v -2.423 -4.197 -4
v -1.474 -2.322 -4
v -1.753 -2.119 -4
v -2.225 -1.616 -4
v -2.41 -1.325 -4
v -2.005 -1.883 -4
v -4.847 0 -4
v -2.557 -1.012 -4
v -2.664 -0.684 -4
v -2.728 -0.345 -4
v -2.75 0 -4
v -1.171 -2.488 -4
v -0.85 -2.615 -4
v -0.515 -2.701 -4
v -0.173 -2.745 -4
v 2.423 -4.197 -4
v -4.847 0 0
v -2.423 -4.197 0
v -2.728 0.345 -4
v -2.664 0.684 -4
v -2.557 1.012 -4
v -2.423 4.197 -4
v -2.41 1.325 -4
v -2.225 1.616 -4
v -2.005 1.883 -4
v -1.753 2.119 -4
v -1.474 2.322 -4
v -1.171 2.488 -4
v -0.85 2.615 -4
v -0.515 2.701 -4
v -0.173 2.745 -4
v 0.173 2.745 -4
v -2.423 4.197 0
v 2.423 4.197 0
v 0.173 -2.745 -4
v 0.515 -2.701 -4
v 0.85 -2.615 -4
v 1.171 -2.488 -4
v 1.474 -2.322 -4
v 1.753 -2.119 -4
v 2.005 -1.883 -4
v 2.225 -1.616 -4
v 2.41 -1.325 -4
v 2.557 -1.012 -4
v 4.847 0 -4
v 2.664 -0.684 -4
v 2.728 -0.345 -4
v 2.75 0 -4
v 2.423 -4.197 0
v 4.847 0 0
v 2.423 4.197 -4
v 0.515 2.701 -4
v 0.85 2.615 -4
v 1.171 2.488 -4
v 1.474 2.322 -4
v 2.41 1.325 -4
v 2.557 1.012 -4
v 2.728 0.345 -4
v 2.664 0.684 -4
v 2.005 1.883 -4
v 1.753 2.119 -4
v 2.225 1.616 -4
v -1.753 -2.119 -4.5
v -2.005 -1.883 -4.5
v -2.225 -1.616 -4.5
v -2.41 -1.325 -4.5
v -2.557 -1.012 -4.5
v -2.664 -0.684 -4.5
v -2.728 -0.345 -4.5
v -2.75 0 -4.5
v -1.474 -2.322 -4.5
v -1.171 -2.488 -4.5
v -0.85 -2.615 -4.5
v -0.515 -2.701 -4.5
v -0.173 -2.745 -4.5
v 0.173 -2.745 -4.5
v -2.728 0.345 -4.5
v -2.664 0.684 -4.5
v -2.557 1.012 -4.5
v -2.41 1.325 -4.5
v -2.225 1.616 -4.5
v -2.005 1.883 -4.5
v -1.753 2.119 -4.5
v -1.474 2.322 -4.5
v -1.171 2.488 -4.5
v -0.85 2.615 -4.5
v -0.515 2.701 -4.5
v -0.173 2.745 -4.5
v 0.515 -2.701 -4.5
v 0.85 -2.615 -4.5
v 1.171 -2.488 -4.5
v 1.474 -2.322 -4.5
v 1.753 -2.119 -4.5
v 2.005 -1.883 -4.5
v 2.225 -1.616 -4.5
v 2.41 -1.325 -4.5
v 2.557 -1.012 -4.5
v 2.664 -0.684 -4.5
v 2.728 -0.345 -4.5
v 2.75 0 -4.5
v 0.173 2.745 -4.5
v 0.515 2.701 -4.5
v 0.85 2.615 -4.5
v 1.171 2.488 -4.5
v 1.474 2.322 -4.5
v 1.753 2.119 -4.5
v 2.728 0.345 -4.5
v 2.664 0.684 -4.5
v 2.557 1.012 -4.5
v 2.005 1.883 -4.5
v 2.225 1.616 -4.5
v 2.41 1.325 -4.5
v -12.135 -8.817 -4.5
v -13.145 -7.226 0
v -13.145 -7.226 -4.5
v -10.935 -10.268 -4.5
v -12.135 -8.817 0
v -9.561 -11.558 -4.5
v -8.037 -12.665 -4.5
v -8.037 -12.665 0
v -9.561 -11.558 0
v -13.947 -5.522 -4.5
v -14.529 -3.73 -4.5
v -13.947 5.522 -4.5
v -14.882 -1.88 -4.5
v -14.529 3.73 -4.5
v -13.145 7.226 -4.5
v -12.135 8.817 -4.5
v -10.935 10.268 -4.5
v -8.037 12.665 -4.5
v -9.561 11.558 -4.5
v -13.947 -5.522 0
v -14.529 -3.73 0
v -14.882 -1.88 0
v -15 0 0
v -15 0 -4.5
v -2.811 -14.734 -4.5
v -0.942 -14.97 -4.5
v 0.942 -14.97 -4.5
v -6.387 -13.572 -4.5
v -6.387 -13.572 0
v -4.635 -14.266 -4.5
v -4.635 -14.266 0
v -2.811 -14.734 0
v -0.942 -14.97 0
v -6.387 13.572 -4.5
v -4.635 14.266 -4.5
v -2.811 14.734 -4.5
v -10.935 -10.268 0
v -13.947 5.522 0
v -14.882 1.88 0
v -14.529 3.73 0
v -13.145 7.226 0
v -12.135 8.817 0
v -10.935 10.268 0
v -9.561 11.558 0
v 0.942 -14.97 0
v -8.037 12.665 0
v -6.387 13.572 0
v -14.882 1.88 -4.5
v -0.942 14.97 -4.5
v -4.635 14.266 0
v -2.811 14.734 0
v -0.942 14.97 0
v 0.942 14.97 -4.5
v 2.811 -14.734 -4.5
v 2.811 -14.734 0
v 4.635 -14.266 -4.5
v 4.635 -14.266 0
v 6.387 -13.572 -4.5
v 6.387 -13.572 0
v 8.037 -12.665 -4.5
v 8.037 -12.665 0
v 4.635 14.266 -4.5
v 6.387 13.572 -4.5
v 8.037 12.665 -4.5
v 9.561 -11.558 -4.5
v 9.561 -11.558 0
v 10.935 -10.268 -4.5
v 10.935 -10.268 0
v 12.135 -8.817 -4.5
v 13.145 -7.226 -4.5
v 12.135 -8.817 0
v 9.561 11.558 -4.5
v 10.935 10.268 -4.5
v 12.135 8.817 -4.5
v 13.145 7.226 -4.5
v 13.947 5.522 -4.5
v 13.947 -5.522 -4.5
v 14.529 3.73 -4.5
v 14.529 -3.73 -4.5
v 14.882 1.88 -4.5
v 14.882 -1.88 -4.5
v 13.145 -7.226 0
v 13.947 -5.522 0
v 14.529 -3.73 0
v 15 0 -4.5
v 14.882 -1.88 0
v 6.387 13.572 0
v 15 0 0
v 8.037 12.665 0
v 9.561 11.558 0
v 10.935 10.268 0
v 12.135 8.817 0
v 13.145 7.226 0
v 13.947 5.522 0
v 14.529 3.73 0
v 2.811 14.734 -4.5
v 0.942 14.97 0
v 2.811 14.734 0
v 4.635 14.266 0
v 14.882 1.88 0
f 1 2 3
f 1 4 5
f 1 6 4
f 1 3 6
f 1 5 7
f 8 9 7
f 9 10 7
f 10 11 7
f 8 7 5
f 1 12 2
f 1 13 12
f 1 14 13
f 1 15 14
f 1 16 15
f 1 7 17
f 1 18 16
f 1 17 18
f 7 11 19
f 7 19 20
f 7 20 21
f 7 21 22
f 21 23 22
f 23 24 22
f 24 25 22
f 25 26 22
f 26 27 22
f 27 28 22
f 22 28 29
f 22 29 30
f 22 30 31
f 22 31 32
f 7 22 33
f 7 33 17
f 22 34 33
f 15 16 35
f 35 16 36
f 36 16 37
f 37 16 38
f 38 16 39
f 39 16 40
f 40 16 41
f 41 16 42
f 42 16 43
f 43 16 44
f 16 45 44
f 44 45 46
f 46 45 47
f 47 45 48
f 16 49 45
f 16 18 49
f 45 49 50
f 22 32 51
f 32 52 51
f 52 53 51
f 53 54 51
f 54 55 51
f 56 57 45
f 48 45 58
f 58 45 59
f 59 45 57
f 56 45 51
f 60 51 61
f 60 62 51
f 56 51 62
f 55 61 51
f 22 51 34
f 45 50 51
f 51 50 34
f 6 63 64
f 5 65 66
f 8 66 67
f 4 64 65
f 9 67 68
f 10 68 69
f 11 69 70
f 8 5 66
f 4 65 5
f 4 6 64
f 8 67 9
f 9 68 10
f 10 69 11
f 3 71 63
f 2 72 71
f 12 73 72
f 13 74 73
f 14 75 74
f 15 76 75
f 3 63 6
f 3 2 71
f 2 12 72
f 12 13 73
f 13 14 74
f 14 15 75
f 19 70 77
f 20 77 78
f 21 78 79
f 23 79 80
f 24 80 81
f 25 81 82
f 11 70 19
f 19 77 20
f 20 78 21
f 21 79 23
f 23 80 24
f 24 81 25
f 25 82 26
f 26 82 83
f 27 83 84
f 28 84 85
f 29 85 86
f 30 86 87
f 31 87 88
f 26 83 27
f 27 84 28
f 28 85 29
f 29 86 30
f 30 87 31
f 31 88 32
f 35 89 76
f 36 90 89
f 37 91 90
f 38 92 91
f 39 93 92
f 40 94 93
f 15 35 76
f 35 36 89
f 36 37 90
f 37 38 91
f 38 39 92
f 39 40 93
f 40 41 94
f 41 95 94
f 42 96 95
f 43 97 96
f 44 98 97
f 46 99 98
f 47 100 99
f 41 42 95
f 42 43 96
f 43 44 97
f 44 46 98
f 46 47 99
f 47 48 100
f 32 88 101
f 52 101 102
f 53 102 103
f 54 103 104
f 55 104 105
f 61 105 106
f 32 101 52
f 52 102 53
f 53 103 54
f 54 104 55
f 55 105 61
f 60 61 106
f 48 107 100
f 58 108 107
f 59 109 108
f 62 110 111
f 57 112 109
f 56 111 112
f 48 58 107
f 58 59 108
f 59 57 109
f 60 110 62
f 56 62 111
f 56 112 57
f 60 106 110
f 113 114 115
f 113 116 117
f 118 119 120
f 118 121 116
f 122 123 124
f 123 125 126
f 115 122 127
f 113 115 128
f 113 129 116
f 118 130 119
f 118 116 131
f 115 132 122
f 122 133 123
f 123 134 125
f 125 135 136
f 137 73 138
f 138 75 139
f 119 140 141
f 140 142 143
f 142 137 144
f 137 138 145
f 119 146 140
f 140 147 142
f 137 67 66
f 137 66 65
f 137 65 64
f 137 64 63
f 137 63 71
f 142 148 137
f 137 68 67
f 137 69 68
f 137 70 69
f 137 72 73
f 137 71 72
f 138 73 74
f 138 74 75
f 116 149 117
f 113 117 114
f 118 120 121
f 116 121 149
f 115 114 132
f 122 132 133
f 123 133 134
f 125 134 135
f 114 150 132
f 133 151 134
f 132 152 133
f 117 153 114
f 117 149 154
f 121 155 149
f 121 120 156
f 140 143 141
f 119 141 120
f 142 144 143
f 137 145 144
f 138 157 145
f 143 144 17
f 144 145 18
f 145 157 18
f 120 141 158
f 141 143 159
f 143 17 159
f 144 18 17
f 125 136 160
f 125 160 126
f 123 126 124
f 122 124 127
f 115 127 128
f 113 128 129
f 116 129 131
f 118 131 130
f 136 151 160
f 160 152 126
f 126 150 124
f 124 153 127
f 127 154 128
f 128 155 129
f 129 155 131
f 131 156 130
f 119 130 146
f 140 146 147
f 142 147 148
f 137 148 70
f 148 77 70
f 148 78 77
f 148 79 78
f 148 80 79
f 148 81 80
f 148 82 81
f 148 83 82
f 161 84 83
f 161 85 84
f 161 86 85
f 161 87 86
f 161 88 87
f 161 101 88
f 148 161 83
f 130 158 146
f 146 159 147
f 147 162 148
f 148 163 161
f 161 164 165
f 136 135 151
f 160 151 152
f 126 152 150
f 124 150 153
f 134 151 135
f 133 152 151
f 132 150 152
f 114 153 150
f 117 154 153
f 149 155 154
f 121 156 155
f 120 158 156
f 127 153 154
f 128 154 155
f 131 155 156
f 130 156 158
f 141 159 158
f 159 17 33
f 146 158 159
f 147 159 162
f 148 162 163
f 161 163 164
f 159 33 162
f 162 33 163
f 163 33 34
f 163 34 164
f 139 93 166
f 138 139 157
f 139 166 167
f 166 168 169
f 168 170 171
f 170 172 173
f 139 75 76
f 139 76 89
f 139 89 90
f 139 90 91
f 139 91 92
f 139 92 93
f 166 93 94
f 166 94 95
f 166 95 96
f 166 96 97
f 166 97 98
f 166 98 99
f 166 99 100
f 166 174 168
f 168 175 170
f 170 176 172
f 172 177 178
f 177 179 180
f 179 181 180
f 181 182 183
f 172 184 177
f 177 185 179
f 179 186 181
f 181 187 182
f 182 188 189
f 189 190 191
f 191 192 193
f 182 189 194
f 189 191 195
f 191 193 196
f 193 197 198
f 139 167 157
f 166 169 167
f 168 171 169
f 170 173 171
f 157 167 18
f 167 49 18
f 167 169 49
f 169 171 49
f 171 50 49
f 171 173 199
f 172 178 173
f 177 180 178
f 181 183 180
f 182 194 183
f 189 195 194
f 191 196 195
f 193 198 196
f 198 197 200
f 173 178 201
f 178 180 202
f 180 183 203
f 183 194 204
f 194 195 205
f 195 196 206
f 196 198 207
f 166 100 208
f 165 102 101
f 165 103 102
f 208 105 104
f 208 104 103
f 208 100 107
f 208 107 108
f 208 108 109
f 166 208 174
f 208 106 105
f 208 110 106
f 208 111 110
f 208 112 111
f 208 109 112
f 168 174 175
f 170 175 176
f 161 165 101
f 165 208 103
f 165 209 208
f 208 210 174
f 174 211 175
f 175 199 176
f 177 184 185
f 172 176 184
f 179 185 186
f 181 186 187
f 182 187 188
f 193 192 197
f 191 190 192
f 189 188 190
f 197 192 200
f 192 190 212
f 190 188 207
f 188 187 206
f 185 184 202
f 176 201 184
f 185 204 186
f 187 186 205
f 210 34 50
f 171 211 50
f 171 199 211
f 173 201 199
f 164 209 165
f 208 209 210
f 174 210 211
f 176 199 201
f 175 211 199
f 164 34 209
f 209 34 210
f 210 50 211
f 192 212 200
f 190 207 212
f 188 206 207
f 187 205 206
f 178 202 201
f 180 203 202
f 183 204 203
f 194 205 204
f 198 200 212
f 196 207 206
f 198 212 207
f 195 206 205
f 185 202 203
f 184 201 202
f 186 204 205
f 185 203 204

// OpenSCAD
$fn = 50;


difference() {
	union() {
		translate(v = [0, 0, -4.5000000000]) {
			cylinder(h = 4.5000000000, r = 15.0000000000);
		}
	}
	union() {
		translate(v = [0, 0, 0]) {
			rotate(a = [0, 0, 0]) {
				difference() {
					union() {
						translate(v = [0, 0, -4]) {
							linear_extrude(height = 4) {
								polygon(points = [[4.8468000000, 0.0000000000], [2.4234000000, 4.1974519271], [-2.4234000000, 4.1974519271], [-4.8468000000, 0.0000000000], [-2.4234000000, -4.1974519271], [2.4234000000, -4.1974519271]]);
							}
						}
					}
					union();
				}
			}
		}
		#translate(v = [0, 0, -100.0000000000]) {
			cylinder(h = 200, r = 2.7500000000);
		}
	}
}
